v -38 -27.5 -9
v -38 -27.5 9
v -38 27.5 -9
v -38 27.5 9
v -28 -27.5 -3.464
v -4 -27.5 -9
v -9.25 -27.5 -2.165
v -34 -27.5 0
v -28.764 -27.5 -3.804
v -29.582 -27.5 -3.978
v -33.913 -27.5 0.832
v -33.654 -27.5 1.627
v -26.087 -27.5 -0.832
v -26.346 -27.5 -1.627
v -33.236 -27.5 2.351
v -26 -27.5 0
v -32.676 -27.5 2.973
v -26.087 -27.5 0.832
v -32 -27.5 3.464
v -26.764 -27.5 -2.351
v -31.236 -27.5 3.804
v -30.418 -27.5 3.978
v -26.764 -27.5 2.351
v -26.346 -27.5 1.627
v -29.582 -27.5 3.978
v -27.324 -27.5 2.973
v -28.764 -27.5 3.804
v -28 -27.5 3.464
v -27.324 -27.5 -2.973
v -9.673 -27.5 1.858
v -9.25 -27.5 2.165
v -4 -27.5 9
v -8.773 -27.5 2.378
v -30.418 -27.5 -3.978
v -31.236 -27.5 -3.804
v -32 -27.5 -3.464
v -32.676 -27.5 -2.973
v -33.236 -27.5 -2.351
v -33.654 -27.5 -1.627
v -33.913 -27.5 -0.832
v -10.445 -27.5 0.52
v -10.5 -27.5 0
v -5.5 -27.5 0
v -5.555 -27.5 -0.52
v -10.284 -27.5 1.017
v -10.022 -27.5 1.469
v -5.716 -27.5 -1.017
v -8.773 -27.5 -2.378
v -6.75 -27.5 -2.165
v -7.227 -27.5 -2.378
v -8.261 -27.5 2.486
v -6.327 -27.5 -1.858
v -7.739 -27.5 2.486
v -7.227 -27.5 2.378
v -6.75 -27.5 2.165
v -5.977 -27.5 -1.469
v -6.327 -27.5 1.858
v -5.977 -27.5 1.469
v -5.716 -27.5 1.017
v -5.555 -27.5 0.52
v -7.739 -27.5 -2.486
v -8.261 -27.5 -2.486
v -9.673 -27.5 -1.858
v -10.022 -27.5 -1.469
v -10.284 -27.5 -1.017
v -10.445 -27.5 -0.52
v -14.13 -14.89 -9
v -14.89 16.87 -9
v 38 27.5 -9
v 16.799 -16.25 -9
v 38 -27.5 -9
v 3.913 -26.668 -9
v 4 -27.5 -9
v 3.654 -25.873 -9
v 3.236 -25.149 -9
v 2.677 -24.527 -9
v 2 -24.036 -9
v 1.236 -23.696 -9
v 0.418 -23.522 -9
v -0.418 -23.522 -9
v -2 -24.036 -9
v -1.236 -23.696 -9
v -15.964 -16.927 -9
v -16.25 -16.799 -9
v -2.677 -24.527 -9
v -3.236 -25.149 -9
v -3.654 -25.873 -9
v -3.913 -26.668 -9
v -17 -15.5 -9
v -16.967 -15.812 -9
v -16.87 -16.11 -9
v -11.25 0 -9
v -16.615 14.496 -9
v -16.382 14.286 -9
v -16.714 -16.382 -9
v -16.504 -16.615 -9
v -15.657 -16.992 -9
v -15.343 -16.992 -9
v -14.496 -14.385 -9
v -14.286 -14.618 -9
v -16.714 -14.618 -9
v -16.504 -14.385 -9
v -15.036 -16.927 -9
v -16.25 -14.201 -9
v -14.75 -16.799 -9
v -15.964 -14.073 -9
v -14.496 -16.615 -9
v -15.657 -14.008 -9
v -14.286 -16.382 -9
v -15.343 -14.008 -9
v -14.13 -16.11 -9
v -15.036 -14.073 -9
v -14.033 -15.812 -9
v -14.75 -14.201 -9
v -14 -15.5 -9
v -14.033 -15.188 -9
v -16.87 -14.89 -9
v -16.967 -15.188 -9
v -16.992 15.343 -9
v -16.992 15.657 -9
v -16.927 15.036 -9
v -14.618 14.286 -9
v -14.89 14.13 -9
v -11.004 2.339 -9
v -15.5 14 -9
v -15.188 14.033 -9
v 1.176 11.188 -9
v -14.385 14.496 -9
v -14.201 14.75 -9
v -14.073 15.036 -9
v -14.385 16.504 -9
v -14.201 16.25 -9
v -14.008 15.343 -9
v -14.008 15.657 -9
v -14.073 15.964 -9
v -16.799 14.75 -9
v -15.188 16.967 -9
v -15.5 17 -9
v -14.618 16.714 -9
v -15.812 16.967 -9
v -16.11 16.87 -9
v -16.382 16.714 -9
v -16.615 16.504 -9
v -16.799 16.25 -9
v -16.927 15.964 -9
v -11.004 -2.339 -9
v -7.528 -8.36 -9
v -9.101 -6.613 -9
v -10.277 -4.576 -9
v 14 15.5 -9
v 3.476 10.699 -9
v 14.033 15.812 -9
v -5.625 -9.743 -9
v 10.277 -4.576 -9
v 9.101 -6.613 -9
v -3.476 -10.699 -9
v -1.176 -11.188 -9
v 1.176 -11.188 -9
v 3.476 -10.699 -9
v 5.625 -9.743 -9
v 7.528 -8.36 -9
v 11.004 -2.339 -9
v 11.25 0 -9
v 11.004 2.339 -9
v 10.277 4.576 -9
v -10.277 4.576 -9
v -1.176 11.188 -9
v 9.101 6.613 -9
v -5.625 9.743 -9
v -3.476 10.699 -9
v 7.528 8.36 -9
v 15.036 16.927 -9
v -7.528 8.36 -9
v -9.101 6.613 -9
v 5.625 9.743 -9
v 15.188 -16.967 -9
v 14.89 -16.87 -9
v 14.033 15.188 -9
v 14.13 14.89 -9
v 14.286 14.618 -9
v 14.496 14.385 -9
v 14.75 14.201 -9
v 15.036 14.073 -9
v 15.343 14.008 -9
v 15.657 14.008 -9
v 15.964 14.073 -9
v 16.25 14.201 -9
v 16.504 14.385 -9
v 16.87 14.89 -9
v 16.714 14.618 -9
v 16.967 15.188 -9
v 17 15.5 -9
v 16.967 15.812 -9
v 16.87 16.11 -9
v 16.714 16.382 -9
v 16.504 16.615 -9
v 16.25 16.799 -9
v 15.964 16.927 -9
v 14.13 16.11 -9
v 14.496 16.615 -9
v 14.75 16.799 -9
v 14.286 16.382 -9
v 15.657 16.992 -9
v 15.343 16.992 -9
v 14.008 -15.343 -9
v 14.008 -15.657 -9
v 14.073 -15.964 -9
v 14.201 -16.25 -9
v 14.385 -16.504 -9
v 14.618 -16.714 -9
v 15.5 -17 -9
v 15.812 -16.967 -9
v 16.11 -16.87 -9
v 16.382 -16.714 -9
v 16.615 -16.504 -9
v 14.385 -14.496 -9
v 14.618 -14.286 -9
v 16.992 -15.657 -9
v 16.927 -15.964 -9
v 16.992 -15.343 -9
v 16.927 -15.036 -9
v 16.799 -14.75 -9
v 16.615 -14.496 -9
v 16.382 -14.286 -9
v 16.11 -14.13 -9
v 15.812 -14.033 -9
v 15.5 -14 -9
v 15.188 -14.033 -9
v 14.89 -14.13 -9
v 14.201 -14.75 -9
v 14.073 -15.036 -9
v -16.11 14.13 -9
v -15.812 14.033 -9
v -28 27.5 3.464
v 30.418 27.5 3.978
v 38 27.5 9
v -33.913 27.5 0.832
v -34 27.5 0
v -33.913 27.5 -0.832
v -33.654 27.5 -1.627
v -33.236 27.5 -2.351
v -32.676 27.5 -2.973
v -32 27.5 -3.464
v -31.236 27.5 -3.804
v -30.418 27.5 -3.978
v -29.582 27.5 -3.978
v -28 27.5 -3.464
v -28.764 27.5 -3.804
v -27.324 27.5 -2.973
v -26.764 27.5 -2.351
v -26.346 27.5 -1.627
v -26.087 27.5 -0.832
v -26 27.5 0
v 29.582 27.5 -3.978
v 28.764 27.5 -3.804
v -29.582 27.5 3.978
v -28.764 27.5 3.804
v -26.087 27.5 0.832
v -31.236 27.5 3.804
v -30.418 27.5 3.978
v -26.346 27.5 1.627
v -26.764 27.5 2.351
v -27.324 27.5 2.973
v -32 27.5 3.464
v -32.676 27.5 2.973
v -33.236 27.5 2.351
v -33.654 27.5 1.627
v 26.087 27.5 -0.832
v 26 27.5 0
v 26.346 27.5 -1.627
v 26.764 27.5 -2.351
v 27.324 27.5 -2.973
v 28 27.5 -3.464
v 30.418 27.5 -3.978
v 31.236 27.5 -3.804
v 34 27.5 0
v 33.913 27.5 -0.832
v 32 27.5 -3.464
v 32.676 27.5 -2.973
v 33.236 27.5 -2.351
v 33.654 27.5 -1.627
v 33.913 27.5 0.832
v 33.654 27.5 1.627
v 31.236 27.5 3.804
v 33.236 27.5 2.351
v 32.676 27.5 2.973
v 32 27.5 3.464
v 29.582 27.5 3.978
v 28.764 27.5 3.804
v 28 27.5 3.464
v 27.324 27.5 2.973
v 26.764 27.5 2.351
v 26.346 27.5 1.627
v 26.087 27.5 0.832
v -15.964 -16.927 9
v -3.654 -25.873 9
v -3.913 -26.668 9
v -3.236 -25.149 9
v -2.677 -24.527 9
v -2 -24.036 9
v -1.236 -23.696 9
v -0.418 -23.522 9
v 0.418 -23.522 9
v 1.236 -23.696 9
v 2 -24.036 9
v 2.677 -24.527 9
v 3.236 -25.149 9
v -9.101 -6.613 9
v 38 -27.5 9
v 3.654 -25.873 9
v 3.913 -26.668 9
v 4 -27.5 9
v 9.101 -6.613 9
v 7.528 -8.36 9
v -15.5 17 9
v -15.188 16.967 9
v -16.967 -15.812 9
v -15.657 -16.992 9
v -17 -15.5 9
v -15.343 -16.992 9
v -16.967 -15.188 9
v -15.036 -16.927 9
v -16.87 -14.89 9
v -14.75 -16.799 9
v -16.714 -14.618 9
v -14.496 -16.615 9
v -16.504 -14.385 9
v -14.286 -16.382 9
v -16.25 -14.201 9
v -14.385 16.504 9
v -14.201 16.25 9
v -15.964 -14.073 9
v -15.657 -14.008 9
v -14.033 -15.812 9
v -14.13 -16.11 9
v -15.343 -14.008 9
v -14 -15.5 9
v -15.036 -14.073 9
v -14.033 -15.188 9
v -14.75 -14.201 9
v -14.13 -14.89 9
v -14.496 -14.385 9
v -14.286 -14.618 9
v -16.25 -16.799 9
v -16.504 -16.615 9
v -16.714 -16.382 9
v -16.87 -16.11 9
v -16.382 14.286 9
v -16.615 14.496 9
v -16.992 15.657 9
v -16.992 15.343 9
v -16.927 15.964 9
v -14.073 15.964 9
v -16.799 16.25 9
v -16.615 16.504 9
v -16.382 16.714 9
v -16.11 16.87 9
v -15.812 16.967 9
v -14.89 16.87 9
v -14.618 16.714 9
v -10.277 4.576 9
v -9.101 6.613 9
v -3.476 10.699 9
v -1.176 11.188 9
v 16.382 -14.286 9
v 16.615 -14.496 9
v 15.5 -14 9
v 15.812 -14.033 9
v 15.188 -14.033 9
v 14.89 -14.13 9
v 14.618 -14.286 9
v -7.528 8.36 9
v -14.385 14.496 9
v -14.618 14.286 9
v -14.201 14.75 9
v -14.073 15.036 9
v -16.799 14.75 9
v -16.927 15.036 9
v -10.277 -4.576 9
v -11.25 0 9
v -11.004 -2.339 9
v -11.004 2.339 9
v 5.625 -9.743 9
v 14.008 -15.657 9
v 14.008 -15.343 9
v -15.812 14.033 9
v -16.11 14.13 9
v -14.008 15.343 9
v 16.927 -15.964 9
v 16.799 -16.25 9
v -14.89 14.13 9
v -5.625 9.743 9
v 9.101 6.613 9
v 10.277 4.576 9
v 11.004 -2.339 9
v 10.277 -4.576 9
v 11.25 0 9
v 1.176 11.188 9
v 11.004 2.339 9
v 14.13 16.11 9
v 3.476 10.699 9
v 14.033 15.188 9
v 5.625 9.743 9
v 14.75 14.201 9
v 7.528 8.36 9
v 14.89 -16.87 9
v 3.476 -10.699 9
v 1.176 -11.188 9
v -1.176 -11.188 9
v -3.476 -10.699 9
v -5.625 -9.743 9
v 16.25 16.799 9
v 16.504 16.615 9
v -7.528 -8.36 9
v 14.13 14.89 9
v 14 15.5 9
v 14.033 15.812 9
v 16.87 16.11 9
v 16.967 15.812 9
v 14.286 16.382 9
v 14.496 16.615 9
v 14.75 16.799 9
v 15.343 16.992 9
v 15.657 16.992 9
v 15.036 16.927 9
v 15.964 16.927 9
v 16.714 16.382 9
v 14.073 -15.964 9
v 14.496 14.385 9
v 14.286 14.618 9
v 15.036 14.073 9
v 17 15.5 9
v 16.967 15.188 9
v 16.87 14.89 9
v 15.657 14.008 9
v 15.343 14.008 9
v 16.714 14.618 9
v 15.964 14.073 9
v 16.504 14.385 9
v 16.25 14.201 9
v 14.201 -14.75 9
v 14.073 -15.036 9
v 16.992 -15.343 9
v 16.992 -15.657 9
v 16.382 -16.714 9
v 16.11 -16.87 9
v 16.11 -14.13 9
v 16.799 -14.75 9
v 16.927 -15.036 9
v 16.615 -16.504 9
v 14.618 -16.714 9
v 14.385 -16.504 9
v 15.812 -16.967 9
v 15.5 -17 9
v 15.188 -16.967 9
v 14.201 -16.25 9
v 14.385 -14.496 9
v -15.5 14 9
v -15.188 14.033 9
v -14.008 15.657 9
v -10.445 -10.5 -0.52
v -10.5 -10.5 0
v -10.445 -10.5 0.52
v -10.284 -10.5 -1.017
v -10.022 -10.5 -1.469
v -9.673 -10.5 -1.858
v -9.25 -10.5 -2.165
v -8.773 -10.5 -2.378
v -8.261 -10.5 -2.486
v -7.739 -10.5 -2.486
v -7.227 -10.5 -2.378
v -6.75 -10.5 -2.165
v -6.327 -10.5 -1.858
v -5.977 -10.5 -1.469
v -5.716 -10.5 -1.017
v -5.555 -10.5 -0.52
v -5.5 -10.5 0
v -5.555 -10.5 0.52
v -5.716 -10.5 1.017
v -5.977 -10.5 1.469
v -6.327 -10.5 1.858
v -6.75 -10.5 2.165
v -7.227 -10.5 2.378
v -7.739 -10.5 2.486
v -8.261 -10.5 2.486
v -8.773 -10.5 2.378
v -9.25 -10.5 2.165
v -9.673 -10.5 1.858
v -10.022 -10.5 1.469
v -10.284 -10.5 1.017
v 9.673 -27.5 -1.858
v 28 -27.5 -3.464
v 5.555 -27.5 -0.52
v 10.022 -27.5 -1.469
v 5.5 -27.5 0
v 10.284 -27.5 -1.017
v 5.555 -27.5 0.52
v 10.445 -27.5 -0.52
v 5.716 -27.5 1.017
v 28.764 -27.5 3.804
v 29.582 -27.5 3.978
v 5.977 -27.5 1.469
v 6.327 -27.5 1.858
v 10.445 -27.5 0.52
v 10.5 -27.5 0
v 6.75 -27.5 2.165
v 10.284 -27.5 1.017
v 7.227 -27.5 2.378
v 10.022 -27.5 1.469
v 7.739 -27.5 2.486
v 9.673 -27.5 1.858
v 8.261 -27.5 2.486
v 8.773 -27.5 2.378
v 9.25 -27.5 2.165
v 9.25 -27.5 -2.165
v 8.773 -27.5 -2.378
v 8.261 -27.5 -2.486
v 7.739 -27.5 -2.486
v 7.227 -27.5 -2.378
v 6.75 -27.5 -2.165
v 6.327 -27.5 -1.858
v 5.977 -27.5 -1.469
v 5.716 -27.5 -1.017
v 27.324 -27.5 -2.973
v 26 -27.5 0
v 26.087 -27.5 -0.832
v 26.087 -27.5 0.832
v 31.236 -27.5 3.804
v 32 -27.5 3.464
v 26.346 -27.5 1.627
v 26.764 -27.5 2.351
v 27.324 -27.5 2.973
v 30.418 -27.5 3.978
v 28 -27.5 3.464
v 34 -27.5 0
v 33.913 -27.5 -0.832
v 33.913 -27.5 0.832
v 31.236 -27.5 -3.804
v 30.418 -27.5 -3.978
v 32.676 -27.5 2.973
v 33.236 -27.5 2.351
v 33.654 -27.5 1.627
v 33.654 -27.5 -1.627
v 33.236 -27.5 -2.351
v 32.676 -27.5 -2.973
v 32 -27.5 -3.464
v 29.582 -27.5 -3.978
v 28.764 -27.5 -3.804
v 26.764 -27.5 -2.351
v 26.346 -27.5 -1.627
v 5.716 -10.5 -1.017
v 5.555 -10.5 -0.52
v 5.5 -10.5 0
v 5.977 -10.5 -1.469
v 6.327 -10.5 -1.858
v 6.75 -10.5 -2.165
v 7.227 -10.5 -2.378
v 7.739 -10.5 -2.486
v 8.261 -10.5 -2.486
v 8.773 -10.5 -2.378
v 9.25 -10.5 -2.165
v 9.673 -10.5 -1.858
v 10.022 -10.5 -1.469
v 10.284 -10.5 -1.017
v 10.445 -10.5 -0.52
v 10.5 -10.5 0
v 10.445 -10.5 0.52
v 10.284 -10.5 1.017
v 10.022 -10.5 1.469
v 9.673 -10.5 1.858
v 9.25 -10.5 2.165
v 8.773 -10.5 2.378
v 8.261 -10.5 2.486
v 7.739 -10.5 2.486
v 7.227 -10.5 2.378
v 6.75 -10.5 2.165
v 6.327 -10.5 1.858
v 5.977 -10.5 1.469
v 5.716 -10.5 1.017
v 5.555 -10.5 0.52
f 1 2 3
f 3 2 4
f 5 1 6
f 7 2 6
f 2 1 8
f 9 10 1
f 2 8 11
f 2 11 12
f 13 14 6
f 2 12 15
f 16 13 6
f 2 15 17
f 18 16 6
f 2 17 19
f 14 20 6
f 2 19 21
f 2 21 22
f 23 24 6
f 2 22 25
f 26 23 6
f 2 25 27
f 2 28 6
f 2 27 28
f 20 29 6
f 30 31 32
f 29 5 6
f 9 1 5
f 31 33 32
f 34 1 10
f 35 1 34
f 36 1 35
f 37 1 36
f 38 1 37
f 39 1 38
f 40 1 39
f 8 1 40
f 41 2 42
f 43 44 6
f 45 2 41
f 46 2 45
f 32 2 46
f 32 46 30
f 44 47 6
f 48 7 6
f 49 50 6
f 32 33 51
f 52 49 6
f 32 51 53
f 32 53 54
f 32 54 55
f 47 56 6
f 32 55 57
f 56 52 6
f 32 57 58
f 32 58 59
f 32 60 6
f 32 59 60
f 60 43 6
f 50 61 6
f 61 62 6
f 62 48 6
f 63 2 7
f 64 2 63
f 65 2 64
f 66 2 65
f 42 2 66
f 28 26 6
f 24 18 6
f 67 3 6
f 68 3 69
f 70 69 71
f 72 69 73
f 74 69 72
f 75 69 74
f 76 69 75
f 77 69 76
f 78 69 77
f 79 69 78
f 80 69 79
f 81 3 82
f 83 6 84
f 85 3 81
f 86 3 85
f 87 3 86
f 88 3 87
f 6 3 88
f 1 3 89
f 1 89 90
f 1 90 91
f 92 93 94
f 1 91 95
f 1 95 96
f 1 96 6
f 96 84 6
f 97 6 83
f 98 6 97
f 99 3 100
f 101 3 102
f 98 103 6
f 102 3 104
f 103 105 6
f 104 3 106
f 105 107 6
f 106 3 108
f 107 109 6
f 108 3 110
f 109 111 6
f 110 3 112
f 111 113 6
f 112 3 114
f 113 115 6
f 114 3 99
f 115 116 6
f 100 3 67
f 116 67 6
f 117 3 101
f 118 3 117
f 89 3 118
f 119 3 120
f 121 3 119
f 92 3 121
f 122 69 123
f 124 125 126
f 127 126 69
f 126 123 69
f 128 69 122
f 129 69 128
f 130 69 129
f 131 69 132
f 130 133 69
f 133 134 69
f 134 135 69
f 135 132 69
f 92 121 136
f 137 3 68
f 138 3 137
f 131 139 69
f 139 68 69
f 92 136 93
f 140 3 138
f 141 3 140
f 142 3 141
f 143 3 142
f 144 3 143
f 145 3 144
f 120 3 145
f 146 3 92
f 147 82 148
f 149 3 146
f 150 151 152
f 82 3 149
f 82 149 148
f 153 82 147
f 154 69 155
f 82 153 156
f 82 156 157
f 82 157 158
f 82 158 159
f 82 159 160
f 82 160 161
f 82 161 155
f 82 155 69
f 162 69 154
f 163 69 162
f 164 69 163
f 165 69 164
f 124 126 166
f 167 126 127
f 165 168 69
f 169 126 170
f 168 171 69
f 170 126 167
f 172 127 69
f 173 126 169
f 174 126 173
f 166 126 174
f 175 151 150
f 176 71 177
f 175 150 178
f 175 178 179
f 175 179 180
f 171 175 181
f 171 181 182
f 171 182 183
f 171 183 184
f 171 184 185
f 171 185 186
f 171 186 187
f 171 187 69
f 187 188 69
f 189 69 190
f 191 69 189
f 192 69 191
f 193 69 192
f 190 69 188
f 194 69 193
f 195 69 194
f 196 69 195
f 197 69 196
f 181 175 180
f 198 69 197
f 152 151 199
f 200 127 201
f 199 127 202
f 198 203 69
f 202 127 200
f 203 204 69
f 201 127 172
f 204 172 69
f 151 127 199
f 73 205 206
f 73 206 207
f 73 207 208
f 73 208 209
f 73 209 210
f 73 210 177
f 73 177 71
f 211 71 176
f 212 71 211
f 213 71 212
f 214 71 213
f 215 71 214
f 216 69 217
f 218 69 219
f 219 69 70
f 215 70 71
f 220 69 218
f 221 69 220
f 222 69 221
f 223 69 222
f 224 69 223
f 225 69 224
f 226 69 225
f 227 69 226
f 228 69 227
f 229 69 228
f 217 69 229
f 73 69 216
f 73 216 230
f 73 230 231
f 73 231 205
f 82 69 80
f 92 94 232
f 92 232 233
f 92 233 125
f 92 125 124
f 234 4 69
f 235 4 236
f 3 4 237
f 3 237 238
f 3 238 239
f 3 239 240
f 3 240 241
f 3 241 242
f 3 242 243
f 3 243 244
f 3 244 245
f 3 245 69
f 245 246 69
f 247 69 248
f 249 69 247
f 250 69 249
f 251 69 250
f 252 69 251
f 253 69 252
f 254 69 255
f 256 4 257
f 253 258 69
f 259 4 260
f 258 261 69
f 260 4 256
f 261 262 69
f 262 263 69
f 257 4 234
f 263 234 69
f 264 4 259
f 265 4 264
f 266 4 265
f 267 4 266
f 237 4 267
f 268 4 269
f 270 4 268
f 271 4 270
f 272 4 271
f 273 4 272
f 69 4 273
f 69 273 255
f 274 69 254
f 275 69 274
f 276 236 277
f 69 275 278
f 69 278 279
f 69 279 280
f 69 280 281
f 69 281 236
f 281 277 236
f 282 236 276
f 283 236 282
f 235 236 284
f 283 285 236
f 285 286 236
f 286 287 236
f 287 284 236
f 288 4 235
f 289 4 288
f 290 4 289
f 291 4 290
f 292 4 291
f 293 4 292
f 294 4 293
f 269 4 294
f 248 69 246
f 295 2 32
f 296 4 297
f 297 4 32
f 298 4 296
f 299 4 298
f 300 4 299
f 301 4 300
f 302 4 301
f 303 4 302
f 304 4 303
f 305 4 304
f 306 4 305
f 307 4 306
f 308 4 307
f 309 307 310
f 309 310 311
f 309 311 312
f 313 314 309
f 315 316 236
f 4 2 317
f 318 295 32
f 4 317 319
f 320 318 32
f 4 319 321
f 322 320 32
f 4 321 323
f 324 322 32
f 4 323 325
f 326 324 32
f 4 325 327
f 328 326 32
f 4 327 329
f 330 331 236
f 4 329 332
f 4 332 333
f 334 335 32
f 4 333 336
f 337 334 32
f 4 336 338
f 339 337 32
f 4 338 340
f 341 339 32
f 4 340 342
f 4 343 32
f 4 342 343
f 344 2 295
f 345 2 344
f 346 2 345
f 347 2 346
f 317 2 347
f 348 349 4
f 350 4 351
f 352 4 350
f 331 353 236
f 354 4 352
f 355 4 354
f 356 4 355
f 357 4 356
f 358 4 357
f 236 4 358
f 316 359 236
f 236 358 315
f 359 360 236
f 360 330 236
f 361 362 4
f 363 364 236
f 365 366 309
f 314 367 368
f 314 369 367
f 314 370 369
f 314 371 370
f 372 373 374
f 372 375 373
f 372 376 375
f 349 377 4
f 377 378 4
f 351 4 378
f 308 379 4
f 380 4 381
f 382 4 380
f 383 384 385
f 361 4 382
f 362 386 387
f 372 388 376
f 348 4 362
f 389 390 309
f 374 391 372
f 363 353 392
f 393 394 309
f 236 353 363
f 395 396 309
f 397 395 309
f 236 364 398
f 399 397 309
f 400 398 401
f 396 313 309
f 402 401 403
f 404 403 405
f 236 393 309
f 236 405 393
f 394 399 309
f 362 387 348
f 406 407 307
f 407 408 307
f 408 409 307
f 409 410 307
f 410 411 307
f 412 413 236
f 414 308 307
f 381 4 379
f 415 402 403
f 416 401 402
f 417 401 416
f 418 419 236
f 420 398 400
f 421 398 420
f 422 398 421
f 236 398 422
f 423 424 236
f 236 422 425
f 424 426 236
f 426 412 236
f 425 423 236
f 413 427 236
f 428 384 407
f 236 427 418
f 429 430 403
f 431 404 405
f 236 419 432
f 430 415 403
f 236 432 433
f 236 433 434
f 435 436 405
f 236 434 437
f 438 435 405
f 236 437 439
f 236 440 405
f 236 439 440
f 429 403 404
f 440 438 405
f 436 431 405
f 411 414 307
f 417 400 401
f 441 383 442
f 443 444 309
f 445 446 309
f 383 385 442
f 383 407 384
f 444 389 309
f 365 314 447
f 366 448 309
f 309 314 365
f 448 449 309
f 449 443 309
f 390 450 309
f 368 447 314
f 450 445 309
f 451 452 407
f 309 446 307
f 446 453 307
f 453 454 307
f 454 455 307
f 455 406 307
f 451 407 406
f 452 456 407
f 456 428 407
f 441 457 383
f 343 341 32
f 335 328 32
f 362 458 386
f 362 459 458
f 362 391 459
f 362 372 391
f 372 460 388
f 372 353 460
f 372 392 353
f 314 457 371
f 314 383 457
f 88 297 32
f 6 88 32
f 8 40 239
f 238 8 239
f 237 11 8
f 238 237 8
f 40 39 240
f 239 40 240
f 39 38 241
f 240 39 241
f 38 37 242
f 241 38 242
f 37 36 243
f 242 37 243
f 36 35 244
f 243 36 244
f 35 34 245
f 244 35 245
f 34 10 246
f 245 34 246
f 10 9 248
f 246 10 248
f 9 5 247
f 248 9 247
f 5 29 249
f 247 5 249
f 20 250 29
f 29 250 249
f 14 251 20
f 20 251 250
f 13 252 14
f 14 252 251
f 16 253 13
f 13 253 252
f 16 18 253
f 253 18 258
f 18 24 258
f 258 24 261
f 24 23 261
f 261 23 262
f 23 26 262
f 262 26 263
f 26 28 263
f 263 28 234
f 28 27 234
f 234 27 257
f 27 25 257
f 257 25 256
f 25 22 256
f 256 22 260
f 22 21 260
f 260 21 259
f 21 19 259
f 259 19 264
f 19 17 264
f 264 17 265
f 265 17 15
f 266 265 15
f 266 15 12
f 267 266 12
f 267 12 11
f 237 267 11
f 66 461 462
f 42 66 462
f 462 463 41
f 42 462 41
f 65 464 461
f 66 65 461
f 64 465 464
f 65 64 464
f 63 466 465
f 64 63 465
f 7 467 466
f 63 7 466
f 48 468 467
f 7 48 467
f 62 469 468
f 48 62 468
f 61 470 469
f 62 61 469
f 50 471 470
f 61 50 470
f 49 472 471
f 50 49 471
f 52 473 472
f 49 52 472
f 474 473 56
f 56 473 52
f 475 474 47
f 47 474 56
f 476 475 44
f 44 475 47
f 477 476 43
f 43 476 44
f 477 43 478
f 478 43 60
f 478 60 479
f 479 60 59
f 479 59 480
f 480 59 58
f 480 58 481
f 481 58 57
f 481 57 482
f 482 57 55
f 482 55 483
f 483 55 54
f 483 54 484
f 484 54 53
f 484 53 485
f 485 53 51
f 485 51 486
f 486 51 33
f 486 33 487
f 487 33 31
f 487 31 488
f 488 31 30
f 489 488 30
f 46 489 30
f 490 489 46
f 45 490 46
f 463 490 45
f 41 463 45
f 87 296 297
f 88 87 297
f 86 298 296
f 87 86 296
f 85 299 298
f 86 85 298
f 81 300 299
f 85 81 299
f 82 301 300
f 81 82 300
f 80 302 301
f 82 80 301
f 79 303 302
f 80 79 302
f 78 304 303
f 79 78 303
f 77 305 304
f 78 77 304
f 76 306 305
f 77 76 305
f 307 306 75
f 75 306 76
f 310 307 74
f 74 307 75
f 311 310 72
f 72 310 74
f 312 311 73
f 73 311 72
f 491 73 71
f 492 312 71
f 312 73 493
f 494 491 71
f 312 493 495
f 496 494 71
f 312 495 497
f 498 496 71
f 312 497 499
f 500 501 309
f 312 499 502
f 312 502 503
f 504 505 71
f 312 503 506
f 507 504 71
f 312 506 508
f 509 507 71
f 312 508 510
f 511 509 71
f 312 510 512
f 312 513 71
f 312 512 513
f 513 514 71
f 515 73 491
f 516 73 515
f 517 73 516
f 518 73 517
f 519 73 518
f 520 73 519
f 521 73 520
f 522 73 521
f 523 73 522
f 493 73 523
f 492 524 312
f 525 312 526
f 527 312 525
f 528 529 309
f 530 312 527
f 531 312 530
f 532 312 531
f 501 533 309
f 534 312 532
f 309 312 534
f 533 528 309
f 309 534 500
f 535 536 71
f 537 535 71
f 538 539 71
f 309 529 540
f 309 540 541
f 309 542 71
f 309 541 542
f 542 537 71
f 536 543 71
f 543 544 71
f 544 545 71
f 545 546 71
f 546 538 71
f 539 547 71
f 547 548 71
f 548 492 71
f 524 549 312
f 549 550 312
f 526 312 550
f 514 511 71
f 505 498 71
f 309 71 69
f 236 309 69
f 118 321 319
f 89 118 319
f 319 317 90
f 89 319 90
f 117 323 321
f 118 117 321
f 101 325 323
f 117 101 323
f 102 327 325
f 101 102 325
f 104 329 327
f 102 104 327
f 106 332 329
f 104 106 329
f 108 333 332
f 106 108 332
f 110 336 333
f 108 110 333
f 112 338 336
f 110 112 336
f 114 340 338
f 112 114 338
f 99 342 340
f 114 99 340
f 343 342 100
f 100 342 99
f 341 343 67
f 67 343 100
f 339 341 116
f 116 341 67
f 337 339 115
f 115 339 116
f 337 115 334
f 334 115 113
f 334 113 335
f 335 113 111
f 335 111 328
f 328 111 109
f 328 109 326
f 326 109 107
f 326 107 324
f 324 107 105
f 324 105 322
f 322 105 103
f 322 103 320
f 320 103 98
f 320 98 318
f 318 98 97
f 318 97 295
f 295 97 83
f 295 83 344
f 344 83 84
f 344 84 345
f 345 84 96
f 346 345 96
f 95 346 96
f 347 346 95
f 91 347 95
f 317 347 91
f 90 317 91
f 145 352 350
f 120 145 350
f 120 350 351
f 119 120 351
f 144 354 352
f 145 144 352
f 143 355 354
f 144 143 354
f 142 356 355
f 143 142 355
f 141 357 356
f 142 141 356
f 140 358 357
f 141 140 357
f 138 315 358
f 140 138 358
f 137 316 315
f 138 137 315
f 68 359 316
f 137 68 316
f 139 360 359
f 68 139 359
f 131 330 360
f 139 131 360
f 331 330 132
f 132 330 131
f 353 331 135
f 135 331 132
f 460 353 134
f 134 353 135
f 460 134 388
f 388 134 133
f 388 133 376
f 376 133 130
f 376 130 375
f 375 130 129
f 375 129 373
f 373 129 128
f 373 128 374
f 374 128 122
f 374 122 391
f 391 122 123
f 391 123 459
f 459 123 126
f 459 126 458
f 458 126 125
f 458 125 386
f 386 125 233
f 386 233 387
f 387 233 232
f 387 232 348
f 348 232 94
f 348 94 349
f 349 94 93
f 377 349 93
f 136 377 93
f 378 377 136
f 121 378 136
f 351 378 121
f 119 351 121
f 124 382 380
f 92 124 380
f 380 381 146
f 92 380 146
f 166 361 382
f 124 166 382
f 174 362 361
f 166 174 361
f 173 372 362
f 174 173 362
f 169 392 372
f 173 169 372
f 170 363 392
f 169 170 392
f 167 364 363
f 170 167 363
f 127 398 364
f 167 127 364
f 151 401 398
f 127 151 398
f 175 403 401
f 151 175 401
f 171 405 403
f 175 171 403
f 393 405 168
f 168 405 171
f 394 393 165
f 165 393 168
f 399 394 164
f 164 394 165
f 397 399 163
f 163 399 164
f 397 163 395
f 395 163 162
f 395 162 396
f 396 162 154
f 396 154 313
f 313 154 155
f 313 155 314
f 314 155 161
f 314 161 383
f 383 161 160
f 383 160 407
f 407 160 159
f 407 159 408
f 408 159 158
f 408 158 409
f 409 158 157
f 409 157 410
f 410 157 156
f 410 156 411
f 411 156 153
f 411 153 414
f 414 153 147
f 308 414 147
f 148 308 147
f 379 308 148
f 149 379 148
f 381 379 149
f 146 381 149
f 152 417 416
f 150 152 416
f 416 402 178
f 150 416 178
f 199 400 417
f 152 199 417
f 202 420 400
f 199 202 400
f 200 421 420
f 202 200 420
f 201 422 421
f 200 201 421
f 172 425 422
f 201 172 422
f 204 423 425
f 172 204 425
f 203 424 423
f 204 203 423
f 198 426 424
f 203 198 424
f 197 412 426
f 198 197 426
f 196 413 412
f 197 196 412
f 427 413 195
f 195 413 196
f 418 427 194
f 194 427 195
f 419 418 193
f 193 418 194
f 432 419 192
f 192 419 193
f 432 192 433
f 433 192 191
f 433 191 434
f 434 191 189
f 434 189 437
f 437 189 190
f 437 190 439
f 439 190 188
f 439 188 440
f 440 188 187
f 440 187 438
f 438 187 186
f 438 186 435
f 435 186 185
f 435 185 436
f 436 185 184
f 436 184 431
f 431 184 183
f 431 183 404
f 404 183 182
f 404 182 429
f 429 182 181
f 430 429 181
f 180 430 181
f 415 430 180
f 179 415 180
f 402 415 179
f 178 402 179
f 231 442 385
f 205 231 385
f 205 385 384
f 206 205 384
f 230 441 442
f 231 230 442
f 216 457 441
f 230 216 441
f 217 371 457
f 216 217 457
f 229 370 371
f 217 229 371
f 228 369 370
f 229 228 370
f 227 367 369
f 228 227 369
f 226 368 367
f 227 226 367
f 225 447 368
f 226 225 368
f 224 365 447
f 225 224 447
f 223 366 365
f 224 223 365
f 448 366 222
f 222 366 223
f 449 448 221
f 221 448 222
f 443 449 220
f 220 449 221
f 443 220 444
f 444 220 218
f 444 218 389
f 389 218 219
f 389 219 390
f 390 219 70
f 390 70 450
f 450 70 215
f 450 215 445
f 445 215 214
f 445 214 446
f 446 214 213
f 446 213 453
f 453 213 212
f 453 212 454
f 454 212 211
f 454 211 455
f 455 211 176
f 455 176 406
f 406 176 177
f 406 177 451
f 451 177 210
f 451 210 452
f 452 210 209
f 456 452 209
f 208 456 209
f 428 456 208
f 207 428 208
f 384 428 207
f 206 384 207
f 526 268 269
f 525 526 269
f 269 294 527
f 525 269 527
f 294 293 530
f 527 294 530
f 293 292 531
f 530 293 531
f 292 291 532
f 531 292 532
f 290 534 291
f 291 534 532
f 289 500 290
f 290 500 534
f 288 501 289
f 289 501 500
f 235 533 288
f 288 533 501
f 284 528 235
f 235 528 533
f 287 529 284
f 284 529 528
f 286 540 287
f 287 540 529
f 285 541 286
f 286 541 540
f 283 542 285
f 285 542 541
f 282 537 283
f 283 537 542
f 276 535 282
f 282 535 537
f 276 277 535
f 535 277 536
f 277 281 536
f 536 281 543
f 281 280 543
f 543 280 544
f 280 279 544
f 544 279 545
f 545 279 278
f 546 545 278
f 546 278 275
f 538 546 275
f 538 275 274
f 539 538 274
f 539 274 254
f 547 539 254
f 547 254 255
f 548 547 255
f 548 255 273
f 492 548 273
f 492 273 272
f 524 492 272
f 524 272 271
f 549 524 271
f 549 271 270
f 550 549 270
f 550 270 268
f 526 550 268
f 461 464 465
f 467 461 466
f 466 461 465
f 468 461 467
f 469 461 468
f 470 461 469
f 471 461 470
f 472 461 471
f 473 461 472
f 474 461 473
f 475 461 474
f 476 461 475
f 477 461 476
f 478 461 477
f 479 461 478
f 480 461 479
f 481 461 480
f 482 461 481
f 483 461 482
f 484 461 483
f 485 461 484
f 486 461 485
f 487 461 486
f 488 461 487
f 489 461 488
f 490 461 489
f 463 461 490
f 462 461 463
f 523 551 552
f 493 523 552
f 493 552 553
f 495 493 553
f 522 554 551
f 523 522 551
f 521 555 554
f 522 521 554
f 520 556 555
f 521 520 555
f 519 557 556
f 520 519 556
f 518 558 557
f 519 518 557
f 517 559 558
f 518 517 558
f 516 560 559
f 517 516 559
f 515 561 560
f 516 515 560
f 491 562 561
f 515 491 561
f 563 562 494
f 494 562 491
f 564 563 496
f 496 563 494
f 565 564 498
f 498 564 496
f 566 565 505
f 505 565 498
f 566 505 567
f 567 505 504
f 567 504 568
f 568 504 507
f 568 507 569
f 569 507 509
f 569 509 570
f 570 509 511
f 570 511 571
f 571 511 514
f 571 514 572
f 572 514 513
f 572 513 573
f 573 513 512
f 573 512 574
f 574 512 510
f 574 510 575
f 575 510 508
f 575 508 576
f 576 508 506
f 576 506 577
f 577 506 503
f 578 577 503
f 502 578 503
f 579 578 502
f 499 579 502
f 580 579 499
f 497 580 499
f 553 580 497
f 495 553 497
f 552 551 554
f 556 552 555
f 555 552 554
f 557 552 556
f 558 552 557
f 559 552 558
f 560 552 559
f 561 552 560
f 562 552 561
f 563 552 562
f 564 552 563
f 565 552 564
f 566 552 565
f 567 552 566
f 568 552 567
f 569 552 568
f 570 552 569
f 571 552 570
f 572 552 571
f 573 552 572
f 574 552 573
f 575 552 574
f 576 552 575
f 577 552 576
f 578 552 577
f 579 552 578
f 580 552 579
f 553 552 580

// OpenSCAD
x=76;
y=55;
z=18;
x2=x+2;
y2=y+2;
z2=z+2;

r1=22.5;
r2=8;
r3=5;
r4=3;

z1=31;
h1=18;
difference() {
	cube([x,y,z],true);
	translate([0,0,-z2/2])cylinder(z2,r=r1/2,$fn=30);
	translate([0,-y/2,-z2/2])cylinder(z2,r=r2/2,$fn=30);
	for(i=[0:3])rotate([0,0,i*90])translate([z1/2,z1/2,-10])cylinder(z2,r=r4/2,$fn=30);
	for(i=[0:1])rotate([90,i*180,0])translate([x/2-8,0,-y2/2])cylinder(y2,r=r2/2,$fn=30);
	for(i=[0:1])rotate([-90,i*180,0])translate([8,0,-y2/2])cylinder(h1,r=r3/2,$fn=30);
}
